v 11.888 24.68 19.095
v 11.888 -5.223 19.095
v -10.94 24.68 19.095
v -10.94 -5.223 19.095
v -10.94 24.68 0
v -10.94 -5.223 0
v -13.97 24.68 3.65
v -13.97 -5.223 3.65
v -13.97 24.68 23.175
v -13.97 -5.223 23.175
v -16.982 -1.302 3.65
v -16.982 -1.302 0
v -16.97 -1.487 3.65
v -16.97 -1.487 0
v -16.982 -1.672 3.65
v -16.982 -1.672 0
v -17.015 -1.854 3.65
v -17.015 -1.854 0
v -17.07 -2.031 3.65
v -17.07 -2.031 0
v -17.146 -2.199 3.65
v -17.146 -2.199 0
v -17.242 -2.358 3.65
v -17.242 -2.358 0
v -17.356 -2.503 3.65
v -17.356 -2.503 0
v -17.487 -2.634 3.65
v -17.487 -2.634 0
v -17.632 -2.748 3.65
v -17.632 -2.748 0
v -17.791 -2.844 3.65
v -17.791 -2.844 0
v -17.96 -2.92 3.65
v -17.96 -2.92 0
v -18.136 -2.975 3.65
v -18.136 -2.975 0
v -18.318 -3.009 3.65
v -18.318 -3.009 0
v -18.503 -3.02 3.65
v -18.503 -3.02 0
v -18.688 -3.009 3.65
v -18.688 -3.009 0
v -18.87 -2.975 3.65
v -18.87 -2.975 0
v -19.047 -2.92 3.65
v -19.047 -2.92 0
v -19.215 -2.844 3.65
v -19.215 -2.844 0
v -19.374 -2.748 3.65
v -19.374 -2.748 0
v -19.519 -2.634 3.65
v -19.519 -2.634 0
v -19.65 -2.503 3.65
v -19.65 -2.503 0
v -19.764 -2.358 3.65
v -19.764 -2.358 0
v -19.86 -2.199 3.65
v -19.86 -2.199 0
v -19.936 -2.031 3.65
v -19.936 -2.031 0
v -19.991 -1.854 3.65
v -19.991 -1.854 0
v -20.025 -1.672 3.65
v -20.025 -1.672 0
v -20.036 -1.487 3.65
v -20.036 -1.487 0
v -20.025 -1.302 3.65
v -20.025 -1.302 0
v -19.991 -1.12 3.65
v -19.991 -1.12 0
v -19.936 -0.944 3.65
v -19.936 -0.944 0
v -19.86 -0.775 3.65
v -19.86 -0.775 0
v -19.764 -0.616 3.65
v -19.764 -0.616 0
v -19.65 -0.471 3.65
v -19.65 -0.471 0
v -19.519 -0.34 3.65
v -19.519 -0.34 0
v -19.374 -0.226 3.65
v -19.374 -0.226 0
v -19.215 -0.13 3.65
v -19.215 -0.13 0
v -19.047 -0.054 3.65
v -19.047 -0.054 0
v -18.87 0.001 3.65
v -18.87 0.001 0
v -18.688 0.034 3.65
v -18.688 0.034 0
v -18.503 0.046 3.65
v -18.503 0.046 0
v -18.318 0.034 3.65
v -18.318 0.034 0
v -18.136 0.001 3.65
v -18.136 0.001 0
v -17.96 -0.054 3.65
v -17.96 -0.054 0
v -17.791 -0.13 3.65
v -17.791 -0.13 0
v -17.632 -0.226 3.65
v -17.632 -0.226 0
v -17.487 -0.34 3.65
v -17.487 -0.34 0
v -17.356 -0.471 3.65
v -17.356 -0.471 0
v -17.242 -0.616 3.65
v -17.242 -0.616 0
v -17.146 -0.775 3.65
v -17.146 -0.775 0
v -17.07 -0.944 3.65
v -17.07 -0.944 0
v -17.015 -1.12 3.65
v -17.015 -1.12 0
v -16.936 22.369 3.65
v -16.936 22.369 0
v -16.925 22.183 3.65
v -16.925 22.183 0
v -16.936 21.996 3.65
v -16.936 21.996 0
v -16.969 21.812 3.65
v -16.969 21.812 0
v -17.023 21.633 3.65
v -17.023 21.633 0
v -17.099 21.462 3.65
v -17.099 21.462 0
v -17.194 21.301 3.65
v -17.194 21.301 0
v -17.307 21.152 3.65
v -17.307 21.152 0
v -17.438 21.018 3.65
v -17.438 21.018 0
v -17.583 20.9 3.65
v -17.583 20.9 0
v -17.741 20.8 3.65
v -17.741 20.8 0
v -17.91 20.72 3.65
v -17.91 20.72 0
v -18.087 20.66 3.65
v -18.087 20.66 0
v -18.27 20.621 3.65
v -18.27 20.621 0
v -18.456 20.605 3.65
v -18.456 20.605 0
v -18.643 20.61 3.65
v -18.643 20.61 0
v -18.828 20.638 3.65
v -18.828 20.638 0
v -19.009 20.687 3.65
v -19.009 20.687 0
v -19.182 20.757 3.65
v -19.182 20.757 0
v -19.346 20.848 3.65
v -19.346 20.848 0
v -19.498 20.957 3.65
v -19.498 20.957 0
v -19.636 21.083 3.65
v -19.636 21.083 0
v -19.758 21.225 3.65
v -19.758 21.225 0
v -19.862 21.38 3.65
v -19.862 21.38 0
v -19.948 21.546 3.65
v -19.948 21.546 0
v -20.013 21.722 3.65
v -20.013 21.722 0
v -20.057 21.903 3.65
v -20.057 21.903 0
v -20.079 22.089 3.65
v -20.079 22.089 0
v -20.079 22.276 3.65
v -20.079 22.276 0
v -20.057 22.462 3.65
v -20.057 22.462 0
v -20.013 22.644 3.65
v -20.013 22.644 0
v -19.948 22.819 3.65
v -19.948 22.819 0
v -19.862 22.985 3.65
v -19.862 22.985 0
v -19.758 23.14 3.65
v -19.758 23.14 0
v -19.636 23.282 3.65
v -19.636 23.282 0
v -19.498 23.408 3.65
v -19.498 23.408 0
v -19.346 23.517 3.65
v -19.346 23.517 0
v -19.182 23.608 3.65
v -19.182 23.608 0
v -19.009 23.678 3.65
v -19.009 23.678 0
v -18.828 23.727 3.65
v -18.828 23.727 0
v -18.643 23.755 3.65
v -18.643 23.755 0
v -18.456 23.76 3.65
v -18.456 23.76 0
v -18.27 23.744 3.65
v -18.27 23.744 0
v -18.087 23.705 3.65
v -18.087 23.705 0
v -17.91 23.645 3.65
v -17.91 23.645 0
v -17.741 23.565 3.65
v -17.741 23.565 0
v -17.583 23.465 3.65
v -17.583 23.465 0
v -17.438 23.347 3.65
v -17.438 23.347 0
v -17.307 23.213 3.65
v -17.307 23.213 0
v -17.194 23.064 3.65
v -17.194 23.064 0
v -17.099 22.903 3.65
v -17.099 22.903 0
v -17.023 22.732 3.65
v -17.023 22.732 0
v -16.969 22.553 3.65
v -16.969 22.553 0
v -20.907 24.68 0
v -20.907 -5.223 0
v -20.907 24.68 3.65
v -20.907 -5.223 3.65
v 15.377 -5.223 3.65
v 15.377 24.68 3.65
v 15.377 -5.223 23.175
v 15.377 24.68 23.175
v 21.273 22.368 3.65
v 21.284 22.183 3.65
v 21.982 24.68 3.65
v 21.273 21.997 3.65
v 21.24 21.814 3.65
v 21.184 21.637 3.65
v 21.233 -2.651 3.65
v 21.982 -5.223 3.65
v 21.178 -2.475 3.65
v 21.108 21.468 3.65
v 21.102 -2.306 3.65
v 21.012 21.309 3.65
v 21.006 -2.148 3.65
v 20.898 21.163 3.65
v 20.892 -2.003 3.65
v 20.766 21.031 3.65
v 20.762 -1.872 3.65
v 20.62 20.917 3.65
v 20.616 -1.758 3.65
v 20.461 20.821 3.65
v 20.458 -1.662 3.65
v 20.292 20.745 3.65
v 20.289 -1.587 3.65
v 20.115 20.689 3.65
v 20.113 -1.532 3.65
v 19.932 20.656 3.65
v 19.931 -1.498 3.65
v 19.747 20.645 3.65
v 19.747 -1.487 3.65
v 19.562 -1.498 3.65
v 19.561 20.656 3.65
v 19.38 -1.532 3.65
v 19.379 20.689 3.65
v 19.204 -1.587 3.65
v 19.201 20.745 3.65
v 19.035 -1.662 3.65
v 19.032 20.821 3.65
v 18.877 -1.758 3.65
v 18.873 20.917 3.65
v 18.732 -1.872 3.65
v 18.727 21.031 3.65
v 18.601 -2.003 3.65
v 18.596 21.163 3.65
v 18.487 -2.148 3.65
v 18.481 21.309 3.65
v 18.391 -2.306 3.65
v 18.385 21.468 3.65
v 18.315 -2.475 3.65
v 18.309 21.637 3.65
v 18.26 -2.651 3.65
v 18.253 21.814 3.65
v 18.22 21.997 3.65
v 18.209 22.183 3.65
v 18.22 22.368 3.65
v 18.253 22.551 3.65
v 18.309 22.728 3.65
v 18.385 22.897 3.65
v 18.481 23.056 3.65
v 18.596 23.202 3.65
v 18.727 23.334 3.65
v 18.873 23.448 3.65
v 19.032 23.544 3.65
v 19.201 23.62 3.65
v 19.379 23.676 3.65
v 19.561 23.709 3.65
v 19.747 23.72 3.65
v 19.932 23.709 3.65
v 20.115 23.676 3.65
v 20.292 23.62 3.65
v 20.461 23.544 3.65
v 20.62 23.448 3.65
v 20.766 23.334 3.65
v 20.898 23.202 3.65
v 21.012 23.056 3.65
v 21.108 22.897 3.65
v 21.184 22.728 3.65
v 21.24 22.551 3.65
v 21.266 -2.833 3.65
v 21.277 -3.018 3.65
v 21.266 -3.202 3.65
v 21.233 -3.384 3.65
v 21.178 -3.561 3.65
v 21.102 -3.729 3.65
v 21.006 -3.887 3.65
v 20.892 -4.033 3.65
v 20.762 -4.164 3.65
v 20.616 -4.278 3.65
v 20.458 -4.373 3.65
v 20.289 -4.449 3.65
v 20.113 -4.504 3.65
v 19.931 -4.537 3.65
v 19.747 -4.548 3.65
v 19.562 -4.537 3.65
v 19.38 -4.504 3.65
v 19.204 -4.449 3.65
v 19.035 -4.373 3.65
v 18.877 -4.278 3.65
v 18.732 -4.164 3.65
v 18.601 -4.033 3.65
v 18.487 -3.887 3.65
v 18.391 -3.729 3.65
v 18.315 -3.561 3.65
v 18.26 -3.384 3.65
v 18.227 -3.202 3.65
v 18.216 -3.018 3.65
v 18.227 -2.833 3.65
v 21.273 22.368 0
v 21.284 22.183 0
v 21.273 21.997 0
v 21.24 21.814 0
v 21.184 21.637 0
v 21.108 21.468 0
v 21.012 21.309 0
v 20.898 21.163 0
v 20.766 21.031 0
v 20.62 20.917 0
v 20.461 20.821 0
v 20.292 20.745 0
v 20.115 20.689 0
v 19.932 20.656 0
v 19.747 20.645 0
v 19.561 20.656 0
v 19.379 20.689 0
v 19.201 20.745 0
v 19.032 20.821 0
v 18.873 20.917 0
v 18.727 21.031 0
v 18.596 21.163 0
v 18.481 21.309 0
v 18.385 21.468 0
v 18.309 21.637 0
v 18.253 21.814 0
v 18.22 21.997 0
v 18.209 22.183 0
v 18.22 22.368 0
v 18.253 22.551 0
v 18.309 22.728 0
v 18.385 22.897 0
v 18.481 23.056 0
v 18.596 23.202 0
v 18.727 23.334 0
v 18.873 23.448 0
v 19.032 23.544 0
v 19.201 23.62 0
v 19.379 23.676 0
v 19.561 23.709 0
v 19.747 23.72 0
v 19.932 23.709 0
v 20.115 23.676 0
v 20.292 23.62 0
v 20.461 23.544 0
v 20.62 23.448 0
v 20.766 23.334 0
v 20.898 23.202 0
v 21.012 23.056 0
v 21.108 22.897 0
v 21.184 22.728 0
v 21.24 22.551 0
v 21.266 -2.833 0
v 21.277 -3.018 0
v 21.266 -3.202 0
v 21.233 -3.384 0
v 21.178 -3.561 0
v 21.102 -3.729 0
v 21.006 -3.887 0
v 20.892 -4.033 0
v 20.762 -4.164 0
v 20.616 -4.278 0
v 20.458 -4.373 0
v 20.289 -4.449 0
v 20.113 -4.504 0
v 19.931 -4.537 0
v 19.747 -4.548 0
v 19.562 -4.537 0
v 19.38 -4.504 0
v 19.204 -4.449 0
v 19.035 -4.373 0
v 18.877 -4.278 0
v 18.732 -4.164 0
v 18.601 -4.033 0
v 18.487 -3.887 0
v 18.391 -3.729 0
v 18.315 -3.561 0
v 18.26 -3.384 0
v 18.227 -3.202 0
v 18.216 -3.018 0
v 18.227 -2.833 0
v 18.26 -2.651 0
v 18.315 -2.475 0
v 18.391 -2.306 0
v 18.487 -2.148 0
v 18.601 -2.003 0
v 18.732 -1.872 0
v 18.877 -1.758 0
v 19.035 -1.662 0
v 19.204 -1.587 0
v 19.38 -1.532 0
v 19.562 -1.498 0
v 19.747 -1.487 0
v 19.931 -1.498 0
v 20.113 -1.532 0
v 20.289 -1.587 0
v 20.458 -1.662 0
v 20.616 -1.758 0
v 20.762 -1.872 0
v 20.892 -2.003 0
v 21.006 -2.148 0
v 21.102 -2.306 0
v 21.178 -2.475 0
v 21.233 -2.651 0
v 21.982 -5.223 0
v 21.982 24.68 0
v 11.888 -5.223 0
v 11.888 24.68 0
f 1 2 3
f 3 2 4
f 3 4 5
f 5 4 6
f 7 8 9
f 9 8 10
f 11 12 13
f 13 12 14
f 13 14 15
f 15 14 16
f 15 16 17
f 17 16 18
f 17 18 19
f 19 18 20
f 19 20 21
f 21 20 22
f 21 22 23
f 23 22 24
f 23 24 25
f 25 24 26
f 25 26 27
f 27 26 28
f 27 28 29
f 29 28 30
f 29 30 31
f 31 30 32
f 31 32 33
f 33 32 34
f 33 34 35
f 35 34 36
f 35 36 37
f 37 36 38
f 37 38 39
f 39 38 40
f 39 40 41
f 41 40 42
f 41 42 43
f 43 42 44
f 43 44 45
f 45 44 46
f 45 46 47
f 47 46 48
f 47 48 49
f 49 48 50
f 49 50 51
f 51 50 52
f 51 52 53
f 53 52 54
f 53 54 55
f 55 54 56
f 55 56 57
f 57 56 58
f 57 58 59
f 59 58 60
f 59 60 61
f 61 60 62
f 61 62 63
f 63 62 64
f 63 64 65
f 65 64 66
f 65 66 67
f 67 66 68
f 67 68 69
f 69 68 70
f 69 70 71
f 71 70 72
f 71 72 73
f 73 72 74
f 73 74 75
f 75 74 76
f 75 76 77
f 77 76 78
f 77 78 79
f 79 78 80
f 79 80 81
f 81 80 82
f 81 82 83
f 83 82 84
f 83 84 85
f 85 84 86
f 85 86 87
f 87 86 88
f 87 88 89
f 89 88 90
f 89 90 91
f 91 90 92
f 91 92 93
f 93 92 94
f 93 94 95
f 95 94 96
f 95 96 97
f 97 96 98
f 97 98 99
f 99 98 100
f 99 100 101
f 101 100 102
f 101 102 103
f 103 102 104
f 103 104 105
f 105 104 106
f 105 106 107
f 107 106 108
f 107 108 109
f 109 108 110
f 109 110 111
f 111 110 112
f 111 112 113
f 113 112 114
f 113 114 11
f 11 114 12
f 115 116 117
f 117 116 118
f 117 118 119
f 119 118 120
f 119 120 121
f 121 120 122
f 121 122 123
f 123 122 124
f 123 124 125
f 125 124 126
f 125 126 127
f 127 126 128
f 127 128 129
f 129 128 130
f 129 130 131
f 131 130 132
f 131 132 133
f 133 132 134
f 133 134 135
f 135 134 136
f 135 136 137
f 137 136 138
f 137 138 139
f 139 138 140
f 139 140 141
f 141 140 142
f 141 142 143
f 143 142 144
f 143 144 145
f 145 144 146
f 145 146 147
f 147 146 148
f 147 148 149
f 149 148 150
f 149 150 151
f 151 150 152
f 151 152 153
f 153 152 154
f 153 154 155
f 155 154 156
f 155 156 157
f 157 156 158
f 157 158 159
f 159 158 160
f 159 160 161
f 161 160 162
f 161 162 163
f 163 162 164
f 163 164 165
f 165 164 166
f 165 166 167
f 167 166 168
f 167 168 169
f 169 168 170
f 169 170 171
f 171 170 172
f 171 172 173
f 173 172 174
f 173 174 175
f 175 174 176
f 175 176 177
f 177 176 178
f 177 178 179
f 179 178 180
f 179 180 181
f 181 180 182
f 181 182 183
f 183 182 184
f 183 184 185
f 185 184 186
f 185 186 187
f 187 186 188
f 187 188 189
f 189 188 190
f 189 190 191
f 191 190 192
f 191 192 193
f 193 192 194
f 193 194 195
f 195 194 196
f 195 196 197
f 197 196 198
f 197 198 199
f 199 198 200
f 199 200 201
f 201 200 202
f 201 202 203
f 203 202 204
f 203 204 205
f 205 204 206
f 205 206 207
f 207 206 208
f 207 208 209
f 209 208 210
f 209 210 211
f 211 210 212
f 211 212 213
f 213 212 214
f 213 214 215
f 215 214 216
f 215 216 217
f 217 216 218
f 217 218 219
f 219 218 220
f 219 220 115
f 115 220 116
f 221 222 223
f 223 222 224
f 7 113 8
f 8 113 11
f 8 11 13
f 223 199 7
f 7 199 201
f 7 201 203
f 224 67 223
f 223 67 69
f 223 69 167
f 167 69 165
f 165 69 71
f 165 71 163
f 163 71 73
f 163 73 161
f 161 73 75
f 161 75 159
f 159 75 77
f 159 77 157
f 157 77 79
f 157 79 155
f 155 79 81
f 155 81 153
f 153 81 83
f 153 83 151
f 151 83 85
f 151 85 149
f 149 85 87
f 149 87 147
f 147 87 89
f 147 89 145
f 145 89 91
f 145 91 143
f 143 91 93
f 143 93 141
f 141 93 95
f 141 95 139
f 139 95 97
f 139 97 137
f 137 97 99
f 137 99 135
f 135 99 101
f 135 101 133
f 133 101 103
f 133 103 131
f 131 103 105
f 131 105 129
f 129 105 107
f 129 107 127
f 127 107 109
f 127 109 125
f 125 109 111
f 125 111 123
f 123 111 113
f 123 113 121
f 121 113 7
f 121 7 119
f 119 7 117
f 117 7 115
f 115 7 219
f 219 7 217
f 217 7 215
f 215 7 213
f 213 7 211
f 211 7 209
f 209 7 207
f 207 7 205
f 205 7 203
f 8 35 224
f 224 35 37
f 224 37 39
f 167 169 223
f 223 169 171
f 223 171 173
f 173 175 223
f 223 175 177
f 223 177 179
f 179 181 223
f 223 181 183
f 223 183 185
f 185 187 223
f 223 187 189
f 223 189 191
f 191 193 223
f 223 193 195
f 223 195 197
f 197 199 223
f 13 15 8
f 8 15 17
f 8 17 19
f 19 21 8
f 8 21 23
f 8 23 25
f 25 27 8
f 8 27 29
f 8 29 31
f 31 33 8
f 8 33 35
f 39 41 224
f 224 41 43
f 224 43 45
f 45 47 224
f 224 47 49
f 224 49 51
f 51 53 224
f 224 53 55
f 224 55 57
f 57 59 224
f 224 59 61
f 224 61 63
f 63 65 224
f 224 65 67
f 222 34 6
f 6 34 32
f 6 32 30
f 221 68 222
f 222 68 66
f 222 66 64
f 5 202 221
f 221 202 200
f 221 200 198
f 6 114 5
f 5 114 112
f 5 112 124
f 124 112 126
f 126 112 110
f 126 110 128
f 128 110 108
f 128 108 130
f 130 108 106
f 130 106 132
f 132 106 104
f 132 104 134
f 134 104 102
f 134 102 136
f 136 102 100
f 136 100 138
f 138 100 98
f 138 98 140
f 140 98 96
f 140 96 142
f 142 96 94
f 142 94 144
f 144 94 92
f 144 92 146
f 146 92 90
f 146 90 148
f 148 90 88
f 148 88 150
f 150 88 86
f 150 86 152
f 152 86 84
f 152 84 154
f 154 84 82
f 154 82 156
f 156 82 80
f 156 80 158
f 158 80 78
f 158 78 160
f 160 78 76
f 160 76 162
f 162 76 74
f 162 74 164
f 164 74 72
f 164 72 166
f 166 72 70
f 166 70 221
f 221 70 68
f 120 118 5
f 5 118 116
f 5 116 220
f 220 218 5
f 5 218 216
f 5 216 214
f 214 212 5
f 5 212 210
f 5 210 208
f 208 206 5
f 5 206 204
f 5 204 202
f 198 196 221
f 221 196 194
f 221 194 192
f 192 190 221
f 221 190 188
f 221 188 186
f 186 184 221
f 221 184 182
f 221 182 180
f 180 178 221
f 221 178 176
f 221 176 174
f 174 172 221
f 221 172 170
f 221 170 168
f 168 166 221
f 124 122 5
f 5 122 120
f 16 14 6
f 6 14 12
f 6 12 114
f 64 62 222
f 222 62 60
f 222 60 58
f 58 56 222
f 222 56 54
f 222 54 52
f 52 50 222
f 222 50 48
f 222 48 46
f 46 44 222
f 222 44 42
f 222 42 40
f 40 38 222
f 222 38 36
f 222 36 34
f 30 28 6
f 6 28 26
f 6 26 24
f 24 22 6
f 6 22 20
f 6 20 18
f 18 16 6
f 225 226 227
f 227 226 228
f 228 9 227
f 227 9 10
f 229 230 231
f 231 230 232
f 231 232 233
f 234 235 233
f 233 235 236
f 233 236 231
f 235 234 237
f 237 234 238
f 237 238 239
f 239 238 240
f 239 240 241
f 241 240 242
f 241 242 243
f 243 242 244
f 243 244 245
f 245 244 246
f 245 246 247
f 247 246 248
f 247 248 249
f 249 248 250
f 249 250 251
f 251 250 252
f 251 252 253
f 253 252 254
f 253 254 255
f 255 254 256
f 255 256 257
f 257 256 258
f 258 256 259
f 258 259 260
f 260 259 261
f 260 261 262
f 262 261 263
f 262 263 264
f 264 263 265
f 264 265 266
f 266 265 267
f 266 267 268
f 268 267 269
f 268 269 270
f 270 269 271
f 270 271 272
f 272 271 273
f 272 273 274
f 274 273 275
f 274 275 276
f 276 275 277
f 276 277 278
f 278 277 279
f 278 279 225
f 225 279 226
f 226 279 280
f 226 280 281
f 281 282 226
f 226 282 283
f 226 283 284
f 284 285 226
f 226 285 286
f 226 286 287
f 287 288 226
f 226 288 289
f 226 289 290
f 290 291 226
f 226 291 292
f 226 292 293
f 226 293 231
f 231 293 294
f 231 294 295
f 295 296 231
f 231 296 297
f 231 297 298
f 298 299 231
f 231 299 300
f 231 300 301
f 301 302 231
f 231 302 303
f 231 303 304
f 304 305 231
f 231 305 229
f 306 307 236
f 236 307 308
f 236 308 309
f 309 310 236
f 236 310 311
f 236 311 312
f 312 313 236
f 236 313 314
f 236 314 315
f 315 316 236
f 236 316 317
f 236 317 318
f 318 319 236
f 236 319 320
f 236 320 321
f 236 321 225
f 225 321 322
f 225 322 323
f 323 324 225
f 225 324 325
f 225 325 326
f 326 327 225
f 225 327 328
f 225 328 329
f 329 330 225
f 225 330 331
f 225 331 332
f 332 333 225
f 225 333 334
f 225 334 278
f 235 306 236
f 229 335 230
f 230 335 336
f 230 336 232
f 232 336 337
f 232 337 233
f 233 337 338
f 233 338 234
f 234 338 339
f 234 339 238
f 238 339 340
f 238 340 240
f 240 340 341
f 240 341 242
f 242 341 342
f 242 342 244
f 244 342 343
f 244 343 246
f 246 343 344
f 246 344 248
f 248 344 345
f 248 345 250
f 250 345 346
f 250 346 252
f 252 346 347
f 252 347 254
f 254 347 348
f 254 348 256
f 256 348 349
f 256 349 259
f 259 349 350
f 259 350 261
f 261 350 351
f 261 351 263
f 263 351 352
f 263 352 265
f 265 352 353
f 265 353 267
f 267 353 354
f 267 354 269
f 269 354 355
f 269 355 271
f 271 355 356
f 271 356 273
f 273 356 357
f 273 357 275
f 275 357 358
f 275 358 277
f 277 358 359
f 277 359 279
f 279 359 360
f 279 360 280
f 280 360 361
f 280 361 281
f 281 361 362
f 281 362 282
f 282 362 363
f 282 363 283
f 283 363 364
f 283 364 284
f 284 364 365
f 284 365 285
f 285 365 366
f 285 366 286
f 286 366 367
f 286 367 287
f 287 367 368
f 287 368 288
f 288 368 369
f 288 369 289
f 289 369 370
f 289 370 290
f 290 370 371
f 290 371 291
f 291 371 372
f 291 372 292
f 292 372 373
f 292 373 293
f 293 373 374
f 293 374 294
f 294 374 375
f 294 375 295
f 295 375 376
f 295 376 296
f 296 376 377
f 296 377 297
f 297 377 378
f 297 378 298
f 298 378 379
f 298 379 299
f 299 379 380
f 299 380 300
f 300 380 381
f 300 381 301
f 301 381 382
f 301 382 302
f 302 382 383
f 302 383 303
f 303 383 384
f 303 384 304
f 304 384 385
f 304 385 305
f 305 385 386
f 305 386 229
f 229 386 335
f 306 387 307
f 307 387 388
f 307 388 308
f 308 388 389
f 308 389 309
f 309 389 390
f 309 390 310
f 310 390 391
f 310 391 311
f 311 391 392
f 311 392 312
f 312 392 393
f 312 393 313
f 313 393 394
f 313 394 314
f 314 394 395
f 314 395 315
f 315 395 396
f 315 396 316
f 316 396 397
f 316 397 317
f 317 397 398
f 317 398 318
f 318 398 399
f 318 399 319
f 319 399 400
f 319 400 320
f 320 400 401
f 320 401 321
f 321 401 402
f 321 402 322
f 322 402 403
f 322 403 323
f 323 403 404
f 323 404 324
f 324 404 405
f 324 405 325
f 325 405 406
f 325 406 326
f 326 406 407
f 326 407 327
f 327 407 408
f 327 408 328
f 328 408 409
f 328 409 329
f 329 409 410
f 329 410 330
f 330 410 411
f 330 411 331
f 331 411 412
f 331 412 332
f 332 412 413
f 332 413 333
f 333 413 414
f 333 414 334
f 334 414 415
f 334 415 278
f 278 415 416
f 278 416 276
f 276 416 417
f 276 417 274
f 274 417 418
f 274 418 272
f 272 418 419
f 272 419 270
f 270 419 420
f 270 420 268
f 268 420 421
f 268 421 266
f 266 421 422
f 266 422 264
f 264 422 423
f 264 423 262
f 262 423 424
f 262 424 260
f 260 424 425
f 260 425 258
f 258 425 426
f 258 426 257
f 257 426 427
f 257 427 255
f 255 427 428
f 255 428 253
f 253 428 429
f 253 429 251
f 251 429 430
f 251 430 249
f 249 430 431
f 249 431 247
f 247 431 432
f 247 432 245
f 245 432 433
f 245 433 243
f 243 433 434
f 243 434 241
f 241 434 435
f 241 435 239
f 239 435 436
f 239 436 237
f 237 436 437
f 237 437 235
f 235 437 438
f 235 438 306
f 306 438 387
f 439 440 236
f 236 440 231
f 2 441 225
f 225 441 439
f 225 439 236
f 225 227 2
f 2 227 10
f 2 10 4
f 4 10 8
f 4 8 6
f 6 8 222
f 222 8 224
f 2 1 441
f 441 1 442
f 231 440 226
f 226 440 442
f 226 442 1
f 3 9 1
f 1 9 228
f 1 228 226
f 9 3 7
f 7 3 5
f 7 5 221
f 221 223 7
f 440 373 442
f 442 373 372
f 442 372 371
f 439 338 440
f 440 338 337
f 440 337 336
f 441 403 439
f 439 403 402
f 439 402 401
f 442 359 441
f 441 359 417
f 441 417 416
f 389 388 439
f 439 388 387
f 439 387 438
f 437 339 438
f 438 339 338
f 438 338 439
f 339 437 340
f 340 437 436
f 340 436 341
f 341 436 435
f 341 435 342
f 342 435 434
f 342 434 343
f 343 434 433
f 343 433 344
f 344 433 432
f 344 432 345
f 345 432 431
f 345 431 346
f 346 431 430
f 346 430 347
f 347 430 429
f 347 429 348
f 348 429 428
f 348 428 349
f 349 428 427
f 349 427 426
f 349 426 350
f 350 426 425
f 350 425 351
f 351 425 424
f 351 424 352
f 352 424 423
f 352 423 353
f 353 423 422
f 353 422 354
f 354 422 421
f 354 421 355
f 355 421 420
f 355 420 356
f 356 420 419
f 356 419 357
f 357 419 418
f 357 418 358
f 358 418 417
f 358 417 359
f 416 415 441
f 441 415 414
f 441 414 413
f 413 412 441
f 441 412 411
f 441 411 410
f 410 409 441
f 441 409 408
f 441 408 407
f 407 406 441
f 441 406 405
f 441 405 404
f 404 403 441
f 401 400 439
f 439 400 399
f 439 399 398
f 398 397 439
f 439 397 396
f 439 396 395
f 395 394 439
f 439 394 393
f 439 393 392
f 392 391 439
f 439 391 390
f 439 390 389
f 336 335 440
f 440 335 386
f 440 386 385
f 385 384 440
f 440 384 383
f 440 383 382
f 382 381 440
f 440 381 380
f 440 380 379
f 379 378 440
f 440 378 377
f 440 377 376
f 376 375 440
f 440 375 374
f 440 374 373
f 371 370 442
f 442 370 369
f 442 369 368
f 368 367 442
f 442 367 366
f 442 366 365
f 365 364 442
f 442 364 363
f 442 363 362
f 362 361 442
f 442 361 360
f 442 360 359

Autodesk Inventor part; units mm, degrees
ref_plane "YZ Plane" through (0, 0, 0) normal (1, 0, 0) x (0, 1, 0)
ref_plane "XZ Plane" through (0, 0, 0) normal (0, 1, 0) x (-1, 0, 0)
ref_plane "XY Plane" through (0, 0, 0) normal (0, 0, 1) x (1, 0, 0)
ref_plane "Work Plane1" through (0, 0, 0) normal (0, 0, 1) x (1, 0, 0)
sketch "Sketch1" plane through (0, 0, 0) normal (0, 0, 1) x (1, 0, 0)
  line L0 (21.9816, 24.6798) -> (-20.9074, 24.6798)
  line L1 (-20.9074, 24.6798) -> (-20.9074, -5.2231)
  line L2 (-20.9074, -5.2231) -> (21.9816, -5.2231)
  line L3 (21.9816, -5.2231) -> (21.9816, 24.6798)
  line L4 (-10.9398, 24.6798) -> (-10.9398, -5.2231)
  line L5 (11.8882, 24.6798) -> (11.8882, -5.2231)
  circle A0 centre (19.7466, 22.1825) radius 1.5378
  circle A1 centre (19.7466, -3.0178) radius 1.5307
  circle A2 centre (-18.5031, -1.487) radius 1.5327
  circle A3 centre (-18.5031, 22.1825) radius 1.5785
  point P0 (0, 0)
ref_plane "Work Plane2" through (0, 0, 0) normal (0, 0, 1) x (1, 0, 0)
extrude "Extrusion1" add sketch "Sketch1" along normal blind 3.65 contours L3 L2 L5 L0 | L4 L2 L1 L0
sketch "Sketch3" plane through (0, 0, 3.65) normal (0, 0, 1) x (1, 0, 0)
  line L0 (11.8882, 24.6798) -> (11.8882, -5.2231) projected
  line L1 (21.9816, 24.6798) -> (11.8882, 24.6798) projected
  line L2 (11.8882, -5.2231) -> (15.3769, -5.2231)
  line L3 (15.3769, -5.2231) -> (15.3769, 24.6798)
  line L4 (15.3769, 24.6798) -> (11.8882, 24.6798)
  line L5 (11.8882, 24.6798) -> (11.8882, -5.2231)
  line L6 (-10.9398, 24.6798) -> (-20.9074, 24.6798) projected
  line L7 (-10.9398, -5.2231) -> (-13.9699, -5.2231)
  line L8 (-13.9699, -5.2231) -> (-13.9699, 24.6798)
  line L9 (-13.9699, 24.6798) -> (-10.9398, 24.6798)
  line L10 (-10.9398, 24.6798) -> (-10.9398, -5.2231)
  point P0 (0, 0)
extrude "Extrusion2" add sketch "Sketch3" along normal blind 19.525
sketch "Sketch4" plane through (-10.9398, -5.2231, 0) normal (1, 0, 0) x (0, 0, -1)
  line L0 (0, 0) -> (-23.175, 0) projected
  line L1 (0, 29.9028) -> (-23.175, 29.9028) projected
  line L2 (-23.175, 0) -> (-19.0955, 0)
  line L3 (-19.0955, 0) -> (-19.0955, 29.9028)
  line L4 (-19.0955, 29.9028) -> (-23.175, 29.9028)
  line L5 (-23.175, 29.9028) -> (-23.175, 0)
  point P0 (0, 5.2231)
extrude "Extrusion3" add sketch "Sketch4" along normal up to surface (22.828 mm away)
properties part number "MotorLock"
